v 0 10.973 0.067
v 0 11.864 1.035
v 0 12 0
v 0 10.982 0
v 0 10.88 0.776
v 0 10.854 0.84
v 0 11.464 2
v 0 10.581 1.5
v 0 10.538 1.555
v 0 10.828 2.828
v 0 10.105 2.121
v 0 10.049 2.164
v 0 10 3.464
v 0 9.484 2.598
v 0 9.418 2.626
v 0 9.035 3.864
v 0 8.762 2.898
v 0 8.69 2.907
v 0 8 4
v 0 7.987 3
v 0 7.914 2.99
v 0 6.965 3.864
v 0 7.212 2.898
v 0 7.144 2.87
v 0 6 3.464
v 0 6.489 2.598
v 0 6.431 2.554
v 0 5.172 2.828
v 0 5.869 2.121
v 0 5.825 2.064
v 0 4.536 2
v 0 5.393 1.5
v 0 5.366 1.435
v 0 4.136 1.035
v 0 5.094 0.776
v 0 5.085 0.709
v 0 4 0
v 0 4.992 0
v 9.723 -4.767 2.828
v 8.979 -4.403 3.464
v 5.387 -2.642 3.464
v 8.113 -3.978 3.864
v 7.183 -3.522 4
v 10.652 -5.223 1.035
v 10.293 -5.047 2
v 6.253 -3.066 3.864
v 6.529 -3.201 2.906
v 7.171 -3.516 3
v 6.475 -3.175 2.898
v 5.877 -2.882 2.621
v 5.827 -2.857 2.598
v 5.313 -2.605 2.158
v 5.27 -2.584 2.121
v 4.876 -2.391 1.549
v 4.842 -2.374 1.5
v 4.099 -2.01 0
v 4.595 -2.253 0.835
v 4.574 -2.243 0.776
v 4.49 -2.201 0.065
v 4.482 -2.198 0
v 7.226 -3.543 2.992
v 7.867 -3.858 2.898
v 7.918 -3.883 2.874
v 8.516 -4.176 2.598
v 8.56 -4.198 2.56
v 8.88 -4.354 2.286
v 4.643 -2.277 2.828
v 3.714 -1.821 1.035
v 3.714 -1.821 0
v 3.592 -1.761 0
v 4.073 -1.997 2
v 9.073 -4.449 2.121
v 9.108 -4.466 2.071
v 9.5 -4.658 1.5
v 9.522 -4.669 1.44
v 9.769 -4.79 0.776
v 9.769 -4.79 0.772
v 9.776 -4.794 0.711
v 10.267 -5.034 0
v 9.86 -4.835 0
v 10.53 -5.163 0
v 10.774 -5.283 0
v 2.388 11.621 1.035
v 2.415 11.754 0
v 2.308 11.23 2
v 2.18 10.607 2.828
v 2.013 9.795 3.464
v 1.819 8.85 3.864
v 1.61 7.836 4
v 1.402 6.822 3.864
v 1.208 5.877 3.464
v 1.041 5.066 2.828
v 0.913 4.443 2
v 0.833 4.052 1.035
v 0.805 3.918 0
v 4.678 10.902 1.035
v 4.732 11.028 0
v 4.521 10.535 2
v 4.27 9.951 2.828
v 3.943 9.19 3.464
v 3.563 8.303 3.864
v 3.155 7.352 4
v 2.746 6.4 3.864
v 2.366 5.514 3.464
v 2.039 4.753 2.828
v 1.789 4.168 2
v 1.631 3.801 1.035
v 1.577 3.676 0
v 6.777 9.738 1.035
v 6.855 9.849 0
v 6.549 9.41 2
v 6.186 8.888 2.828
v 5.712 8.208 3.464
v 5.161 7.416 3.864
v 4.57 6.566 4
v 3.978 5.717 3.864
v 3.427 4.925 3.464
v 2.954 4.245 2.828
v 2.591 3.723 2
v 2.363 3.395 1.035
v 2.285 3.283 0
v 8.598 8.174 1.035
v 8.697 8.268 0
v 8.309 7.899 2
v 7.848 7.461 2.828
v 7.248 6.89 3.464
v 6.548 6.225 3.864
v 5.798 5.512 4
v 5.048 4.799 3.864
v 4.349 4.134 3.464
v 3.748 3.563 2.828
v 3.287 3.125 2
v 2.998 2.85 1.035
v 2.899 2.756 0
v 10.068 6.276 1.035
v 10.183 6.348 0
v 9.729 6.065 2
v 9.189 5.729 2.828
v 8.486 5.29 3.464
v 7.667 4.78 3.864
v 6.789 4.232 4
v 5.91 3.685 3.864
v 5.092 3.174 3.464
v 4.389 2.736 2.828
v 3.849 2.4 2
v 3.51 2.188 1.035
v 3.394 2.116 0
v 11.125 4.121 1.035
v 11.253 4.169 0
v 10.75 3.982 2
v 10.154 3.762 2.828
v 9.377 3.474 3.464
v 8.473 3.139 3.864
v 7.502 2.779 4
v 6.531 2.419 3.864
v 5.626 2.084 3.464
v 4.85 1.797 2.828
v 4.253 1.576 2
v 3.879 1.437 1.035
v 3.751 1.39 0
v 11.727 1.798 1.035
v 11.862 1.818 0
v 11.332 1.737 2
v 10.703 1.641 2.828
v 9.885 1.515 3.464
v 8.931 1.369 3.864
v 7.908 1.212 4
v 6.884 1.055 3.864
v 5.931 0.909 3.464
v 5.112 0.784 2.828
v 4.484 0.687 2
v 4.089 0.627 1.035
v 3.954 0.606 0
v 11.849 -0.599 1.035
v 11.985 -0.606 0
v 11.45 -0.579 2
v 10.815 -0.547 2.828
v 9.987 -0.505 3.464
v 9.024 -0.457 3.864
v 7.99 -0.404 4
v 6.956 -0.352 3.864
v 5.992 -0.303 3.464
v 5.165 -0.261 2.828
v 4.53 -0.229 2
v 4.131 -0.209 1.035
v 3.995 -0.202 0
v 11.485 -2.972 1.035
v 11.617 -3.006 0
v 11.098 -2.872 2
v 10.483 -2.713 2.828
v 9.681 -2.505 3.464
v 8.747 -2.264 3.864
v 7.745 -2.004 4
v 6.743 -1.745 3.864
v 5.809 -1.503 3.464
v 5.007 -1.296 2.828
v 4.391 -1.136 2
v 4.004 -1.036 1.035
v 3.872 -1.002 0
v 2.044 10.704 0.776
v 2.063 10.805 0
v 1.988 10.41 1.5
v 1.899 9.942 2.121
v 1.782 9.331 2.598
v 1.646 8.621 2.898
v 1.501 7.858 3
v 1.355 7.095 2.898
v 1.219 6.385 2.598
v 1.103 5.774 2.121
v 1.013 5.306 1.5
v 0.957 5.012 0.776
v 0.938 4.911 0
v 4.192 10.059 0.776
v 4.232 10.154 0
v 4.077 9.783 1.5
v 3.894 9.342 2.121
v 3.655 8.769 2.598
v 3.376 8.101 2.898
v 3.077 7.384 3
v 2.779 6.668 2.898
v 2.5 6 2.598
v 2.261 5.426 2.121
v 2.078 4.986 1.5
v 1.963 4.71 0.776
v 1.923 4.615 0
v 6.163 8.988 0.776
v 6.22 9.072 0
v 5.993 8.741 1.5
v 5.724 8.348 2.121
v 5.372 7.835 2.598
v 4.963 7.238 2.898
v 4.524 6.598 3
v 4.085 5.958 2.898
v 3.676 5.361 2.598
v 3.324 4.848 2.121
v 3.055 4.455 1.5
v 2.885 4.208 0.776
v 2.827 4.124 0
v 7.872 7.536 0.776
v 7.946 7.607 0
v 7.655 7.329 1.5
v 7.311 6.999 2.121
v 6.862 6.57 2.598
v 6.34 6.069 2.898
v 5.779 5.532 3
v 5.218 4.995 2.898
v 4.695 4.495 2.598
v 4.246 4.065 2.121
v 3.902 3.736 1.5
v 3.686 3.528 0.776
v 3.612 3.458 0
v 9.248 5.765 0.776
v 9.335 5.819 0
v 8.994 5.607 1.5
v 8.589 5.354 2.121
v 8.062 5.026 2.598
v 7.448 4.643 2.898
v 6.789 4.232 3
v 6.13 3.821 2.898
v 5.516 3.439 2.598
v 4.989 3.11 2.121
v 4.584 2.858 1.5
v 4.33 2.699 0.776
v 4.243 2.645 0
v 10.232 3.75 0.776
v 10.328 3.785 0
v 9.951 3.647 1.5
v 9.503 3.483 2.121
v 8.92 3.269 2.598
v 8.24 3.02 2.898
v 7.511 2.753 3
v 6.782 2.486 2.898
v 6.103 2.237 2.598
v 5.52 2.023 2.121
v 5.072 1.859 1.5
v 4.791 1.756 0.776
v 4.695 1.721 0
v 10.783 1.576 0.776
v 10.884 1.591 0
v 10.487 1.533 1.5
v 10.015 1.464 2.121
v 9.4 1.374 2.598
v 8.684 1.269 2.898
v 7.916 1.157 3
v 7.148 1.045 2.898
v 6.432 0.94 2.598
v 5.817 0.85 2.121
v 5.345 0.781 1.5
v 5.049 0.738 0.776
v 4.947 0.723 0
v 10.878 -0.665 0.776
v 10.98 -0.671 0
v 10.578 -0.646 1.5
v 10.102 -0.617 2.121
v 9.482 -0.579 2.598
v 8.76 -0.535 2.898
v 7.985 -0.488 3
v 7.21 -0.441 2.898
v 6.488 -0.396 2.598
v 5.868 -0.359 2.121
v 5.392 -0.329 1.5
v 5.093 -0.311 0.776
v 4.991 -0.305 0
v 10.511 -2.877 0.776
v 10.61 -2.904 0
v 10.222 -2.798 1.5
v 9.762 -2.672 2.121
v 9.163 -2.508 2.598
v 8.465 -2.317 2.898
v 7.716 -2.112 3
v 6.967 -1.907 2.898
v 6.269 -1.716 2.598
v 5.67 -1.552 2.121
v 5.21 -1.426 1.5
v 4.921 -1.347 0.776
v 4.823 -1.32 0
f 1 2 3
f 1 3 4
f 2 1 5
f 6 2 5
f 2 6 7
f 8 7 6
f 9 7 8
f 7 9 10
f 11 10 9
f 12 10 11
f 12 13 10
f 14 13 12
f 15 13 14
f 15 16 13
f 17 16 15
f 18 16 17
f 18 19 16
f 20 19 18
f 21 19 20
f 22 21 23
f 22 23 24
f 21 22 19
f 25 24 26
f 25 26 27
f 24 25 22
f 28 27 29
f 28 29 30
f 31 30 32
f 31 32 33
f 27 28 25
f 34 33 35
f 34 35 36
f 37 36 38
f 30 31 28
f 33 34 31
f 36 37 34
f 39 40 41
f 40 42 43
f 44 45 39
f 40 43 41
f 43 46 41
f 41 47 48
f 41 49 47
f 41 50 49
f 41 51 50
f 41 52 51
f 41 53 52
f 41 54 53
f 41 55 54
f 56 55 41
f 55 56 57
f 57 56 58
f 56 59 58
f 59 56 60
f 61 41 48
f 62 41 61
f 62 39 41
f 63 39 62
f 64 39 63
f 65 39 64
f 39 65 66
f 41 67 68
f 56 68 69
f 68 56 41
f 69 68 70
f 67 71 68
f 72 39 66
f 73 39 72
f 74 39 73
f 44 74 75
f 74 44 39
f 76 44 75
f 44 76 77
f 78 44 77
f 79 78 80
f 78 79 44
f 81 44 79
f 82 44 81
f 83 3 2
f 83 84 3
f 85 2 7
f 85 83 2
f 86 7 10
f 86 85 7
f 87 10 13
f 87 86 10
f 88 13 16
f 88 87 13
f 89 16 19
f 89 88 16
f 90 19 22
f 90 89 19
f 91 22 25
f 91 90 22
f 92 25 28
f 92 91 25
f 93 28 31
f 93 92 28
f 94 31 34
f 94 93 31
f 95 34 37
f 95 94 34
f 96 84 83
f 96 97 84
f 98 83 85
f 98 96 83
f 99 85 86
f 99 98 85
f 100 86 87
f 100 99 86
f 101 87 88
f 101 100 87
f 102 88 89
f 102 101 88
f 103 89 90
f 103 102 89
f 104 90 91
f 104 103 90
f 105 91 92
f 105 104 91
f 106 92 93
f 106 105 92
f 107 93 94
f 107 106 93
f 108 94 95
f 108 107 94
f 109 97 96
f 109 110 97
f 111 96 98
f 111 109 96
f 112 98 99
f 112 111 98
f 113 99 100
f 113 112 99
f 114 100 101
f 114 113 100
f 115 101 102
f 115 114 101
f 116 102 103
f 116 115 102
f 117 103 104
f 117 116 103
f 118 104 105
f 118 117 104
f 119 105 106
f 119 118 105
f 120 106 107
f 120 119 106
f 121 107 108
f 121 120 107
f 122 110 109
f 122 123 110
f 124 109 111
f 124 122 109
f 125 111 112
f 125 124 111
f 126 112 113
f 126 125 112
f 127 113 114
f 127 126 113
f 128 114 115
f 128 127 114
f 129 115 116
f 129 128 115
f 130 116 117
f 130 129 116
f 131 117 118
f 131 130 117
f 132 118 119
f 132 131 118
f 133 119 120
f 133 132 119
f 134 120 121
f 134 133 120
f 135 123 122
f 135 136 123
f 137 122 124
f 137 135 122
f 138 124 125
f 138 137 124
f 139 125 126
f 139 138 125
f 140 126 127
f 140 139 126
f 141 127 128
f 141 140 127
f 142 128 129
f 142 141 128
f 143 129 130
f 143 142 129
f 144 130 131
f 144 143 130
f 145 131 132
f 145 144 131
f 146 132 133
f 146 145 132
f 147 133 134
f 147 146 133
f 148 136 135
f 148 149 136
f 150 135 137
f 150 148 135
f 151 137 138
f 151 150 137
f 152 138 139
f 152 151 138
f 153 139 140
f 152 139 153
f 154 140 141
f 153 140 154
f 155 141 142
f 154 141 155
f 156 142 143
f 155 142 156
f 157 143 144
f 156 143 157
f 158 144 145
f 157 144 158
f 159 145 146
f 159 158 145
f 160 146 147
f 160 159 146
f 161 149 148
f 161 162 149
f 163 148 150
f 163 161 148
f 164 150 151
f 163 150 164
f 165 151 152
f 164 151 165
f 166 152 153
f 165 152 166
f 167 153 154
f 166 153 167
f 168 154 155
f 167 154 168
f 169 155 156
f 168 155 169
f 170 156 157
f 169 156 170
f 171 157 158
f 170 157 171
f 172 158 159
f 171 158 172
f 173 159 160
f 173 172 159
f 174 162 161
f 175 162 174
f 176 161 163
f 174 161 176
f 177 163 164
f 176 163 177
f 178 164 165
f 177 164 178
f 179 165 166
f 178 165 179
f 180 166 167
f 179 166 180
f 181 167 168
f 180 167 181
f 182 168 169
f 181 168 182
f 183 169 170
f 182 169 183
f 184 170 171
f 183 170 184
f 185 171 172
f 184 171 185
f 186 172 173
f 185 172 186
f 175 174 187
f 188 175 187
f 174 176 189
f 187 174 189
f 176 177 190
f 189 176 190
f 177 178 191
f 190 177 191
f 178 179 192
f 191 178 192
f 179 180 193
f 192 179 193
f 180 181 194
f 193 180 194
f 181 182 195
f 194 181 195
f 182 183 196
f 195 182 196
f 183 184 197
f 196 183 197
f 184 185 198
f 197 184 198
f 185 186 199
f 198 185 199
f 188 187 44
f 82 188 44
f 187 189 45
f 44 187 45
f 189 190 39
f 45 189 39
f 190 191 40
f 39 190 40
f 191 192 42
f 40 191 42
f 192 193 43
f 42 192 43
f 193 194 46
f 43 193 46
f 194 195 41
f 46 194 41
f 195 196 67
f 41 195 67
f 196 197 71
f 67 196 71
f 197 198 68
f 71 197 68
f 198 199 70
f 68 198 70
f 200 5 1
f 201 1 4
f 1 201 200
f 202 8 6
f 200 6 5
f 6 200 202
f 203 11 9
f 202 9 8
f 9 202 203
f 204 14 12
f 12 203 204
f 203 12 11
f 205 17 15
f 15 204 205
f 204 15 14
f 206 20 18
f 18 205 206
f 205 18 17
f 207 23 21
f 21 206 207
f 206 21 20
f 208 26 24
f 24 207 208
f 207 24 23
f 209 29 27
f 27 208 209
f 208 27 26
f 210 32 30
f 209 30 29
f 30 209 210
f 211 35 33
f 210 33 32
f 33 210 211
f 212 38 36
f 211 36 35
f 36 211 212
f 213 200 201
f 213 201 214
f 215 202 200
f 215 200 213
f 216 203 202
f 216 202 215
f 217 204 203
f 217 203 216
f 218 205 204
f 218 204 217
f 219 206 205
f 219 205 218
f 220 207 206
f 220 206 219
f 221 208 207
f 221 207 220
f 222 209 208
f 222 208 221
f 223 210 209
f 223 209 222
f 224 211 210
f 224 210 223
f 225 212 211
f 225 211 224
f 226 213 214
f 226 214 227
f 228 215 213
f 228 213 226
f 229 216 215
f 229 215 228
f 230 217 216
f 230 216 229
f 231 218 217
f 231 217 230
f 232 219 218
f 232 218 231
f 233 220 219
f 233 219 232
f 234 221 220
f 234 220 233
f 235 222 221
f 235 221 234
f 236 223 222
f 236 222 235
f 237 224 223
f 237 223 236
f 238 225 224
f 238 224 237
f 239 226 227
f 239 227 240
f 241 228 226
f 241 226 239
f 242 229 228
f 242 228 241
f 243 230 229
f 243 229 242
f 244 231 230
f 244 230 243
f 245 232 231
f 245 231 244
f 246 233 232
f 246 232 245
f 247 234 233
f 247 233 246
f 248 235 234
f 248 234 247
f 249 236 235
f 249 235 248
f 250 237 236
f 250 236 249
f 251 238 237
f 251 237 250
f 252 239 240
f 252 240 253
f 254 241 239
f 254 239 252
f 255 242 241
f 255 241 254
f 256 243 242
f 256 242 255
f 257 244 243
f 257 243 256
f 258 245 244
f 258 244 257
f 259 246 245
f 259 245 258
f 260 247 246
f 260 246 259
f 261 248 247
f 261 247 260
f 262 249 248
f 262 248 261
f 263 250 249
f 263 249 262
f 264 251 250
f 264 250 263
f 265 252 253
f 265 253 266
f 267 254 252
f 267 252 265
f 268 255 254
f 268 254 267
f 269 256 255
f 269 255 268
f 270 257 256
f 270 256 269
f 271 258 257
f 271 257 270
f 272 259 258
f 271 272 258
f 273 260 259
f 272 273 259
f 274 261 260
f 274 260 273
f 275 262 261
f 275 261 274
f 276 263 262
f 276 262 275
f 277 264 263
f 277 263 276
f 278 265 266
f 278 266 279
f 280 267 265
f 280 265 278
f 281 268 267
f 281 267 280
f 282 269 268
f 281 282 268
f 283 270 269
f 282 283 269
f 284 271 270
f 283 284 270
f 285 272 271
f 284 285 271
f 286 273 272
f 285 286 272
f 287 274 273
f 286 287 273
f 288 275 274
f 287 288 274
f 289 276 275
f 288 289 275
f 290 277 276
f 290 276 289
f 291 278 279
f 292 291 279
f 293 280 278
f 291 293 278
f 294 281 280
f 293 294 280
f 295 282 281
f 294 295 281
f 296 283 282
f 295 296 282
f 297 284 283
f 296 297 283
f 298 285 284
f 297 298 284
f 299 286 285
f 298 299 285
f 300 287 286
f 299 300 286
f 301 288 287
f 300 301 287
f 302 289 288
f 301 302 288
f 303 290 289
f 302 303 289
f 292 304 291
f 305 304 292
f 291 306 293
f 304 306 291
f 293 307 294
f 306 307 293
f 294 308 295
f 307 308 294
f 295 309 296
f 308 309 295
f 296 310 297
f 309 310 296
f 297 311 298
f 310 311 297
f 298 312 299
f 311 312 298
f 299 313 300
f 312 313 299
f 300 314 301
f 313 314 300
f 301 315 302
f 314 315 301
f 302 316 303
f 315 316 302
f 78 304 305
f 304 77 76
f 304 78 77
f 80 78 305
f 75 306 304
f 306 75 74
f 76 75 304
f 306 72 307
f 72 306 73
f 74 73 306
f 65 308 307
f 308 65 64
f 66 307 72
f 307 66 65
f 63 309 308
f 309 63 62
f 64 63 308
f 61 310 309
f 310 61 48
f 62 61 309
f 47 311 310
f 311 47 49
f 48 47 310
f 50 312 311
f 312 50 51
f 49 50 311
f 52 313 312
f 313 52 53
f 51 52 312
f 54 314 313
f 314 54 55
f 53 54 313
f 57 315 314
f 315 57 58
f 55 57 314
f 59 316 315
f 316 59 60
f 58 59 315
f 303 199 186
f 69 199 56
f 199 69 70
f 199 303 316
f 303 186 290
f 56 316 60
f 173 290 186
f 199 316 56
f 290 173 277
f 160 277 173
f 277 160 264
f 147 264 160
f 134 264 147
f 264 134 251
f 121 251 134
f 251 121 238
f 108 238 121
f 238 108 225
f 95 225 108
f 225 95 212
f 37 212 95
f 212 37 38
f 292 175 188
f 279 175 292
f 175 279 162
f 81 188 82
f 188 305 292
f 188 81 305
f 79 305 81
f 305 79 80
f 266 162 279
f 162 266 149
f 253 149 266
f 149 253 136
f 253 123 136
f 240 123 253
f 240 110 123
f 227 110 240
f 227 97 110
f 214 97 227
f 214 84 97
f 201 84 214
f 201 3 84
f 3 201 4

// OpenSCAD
// file: ../build_environments.scad
// build_environments.scad: modules to build level sections
//

module pool(diameter=10.0, wall_height=2.0, step_width=3.0, connections=[])
{
    difference() {
        union() {
        difference() {
            cylinder(h=0.5,r1=diameter+step_width,r2=diameter+step_width,$fn=48);
            translate([0,0,-0.1])
                cylinder(h=0.7,r1=diameter,r2=diameter,$fn=48);
        }
        difference() {
            cylinder(h=wall_height,r1=diameter+step_width+1.0,r2=diameter+step_width+1.0,$fn=48);
            translate([0,0,-0.1])
                cylinder(h=wall_height+0.2,r1=diameter+step_width,r2=diameter+step_width,$fn=48);
        }
        }
    
        for (c = connections)
        {
            rotate([0,90,0]) {
                angle = atan2(c[1],c[0]);
                rotate([-angle,0,0]) {
                    cylinder(h=diameter+5.0,r1=c[2],r2=c[2],$fn=48);
                }
            }
        }
    }
}

module straight(length=10.0, width=2.0, dy1=0.0, dy2=0.0, dz=0.0)
{
    dims = [0, 0, 0, 0, 0, (dz/length)];
    matrix = [
        [ 1, dims[0], dims[1], 0 ],
        [ dims[2], 1, dims[4], 0 ],
        [ dims[5], dims[3], 1, 0 ],
        [ 0, 0, 0, 1 ]
    ];
    multmatrix(matrix)
    difference() {
        translate([dy1,0,0])
        union() {
            rotate([0,90,0]) {
                difference() {
                    cylinder(h=(length-dy1-dy2),r1=width+1.0,r2=width+1.0,$fn=24);
                    translate([0,0,-0.1])
                        cylinder(h=(length-dy1-dy2+0.2),r1=width,r2=width,$fn=24);
                }
                difference() {
                    cylinder(h=1.0,r1=width+2.0,r2=width+2.0,$fn=24);
                    translate([0,0,-0.1])
                        cylinder(h=1.2,r1=width,r2=width,$fn=24);
                }
                translate([0,0,(length-dy1-dy2)-1.0]) {
                    difference() {
                        cylinder(h=1.0,r1=width+2.0,r2=width+2.0,$fn=24);
                        translate([0,0,-0.1])
                            cylinder(h=1.2,r1=width,r2=width,$fn=24);
                    }
                }
            }
        }
        translate([0,0,-(2*width+4.0)/2])
            cube([3*length,3*length,2*width+4.0],center=true);
    }
}

module curve(p0=[0,0], center=[0,0], dir=1, angle=0.0, width=2.0)
{
    radius = sqrt((p0[0]-center[0])*(p0[0]-center[0]) + (p0[1]-center[1])*(p0[1]-center[1]));
    if (dir == 0) {
        difference() {
            rotate([0,0,-90])
            difference() {
                rotate_extrude(angle = angle, convexity = 10, $fn=32)
                    translate([radius, 0, 0])
                        circle(r = width+1.0,$fn=24);
                rotate([0,0,-1.0])
                    rotate_extrude(angle = angle+2.0, convexity = 10, $fn=32)
                        translate([radius, 0, 0])
                            circle(r = width,$fn=24);
            }
            translate([0,0,-(2*width+4.0)/2])
                cube([5*radius,5*radius,2*width+4.0],center=true);
        }
    }
    else {
        difference() {
            rotate([0,0,90])
            difference() {
                rotate_extrude(angle = -angle, convexity = 10, $fn=32)
                    translate([radius, 0, 0])
                        circle(r = width+1.0,$fn=24);
                rotate([0,0,1.0])
                    rotate_extrude(angle = -angle-2.0, convexity = 10, $fn=32)
                        translate([radius, 0, 0])
                            circle(r = width,$fn=24);
            }
            translate([0,0,-(2*width+4.0)/2])
                cube([5*radius,5*radius,2*width+4.0],center=true);
        }
    }

}

// test pool
//pool(diameter=12.0000, wall_height=3.0000, step_width=3.0000, connections=[[0.0000,-26.0000,2.0000], [23.6074,0.0000,2.0000]]);

// test straight, slope
//straight(length=26.0000, width=2.0000, dy1=11.8322, dy2=6.7082, dz=0.0000);
//straight(length=29.1549, width=12.0000, dy1=0.0000, dy2=0.0000, dz=-15.0000);

// test curve
//curve(p0=[23.6074, 0.0000], center=[23.6074, 5.0000], dir=0, angle=60.1011, width=2.0000);
//curve(p0=[33.6426, 12.4219], center=[37.9771, 9.9295], dir=1, angle=120.4627, width=2.0000);
// main file
use <../build_environments.scad>;
curve(p0=[-89.2162, 114.7379], center=[-81.9615, 118.1098], dir=1, angle=116.1206, width=3.0000);
